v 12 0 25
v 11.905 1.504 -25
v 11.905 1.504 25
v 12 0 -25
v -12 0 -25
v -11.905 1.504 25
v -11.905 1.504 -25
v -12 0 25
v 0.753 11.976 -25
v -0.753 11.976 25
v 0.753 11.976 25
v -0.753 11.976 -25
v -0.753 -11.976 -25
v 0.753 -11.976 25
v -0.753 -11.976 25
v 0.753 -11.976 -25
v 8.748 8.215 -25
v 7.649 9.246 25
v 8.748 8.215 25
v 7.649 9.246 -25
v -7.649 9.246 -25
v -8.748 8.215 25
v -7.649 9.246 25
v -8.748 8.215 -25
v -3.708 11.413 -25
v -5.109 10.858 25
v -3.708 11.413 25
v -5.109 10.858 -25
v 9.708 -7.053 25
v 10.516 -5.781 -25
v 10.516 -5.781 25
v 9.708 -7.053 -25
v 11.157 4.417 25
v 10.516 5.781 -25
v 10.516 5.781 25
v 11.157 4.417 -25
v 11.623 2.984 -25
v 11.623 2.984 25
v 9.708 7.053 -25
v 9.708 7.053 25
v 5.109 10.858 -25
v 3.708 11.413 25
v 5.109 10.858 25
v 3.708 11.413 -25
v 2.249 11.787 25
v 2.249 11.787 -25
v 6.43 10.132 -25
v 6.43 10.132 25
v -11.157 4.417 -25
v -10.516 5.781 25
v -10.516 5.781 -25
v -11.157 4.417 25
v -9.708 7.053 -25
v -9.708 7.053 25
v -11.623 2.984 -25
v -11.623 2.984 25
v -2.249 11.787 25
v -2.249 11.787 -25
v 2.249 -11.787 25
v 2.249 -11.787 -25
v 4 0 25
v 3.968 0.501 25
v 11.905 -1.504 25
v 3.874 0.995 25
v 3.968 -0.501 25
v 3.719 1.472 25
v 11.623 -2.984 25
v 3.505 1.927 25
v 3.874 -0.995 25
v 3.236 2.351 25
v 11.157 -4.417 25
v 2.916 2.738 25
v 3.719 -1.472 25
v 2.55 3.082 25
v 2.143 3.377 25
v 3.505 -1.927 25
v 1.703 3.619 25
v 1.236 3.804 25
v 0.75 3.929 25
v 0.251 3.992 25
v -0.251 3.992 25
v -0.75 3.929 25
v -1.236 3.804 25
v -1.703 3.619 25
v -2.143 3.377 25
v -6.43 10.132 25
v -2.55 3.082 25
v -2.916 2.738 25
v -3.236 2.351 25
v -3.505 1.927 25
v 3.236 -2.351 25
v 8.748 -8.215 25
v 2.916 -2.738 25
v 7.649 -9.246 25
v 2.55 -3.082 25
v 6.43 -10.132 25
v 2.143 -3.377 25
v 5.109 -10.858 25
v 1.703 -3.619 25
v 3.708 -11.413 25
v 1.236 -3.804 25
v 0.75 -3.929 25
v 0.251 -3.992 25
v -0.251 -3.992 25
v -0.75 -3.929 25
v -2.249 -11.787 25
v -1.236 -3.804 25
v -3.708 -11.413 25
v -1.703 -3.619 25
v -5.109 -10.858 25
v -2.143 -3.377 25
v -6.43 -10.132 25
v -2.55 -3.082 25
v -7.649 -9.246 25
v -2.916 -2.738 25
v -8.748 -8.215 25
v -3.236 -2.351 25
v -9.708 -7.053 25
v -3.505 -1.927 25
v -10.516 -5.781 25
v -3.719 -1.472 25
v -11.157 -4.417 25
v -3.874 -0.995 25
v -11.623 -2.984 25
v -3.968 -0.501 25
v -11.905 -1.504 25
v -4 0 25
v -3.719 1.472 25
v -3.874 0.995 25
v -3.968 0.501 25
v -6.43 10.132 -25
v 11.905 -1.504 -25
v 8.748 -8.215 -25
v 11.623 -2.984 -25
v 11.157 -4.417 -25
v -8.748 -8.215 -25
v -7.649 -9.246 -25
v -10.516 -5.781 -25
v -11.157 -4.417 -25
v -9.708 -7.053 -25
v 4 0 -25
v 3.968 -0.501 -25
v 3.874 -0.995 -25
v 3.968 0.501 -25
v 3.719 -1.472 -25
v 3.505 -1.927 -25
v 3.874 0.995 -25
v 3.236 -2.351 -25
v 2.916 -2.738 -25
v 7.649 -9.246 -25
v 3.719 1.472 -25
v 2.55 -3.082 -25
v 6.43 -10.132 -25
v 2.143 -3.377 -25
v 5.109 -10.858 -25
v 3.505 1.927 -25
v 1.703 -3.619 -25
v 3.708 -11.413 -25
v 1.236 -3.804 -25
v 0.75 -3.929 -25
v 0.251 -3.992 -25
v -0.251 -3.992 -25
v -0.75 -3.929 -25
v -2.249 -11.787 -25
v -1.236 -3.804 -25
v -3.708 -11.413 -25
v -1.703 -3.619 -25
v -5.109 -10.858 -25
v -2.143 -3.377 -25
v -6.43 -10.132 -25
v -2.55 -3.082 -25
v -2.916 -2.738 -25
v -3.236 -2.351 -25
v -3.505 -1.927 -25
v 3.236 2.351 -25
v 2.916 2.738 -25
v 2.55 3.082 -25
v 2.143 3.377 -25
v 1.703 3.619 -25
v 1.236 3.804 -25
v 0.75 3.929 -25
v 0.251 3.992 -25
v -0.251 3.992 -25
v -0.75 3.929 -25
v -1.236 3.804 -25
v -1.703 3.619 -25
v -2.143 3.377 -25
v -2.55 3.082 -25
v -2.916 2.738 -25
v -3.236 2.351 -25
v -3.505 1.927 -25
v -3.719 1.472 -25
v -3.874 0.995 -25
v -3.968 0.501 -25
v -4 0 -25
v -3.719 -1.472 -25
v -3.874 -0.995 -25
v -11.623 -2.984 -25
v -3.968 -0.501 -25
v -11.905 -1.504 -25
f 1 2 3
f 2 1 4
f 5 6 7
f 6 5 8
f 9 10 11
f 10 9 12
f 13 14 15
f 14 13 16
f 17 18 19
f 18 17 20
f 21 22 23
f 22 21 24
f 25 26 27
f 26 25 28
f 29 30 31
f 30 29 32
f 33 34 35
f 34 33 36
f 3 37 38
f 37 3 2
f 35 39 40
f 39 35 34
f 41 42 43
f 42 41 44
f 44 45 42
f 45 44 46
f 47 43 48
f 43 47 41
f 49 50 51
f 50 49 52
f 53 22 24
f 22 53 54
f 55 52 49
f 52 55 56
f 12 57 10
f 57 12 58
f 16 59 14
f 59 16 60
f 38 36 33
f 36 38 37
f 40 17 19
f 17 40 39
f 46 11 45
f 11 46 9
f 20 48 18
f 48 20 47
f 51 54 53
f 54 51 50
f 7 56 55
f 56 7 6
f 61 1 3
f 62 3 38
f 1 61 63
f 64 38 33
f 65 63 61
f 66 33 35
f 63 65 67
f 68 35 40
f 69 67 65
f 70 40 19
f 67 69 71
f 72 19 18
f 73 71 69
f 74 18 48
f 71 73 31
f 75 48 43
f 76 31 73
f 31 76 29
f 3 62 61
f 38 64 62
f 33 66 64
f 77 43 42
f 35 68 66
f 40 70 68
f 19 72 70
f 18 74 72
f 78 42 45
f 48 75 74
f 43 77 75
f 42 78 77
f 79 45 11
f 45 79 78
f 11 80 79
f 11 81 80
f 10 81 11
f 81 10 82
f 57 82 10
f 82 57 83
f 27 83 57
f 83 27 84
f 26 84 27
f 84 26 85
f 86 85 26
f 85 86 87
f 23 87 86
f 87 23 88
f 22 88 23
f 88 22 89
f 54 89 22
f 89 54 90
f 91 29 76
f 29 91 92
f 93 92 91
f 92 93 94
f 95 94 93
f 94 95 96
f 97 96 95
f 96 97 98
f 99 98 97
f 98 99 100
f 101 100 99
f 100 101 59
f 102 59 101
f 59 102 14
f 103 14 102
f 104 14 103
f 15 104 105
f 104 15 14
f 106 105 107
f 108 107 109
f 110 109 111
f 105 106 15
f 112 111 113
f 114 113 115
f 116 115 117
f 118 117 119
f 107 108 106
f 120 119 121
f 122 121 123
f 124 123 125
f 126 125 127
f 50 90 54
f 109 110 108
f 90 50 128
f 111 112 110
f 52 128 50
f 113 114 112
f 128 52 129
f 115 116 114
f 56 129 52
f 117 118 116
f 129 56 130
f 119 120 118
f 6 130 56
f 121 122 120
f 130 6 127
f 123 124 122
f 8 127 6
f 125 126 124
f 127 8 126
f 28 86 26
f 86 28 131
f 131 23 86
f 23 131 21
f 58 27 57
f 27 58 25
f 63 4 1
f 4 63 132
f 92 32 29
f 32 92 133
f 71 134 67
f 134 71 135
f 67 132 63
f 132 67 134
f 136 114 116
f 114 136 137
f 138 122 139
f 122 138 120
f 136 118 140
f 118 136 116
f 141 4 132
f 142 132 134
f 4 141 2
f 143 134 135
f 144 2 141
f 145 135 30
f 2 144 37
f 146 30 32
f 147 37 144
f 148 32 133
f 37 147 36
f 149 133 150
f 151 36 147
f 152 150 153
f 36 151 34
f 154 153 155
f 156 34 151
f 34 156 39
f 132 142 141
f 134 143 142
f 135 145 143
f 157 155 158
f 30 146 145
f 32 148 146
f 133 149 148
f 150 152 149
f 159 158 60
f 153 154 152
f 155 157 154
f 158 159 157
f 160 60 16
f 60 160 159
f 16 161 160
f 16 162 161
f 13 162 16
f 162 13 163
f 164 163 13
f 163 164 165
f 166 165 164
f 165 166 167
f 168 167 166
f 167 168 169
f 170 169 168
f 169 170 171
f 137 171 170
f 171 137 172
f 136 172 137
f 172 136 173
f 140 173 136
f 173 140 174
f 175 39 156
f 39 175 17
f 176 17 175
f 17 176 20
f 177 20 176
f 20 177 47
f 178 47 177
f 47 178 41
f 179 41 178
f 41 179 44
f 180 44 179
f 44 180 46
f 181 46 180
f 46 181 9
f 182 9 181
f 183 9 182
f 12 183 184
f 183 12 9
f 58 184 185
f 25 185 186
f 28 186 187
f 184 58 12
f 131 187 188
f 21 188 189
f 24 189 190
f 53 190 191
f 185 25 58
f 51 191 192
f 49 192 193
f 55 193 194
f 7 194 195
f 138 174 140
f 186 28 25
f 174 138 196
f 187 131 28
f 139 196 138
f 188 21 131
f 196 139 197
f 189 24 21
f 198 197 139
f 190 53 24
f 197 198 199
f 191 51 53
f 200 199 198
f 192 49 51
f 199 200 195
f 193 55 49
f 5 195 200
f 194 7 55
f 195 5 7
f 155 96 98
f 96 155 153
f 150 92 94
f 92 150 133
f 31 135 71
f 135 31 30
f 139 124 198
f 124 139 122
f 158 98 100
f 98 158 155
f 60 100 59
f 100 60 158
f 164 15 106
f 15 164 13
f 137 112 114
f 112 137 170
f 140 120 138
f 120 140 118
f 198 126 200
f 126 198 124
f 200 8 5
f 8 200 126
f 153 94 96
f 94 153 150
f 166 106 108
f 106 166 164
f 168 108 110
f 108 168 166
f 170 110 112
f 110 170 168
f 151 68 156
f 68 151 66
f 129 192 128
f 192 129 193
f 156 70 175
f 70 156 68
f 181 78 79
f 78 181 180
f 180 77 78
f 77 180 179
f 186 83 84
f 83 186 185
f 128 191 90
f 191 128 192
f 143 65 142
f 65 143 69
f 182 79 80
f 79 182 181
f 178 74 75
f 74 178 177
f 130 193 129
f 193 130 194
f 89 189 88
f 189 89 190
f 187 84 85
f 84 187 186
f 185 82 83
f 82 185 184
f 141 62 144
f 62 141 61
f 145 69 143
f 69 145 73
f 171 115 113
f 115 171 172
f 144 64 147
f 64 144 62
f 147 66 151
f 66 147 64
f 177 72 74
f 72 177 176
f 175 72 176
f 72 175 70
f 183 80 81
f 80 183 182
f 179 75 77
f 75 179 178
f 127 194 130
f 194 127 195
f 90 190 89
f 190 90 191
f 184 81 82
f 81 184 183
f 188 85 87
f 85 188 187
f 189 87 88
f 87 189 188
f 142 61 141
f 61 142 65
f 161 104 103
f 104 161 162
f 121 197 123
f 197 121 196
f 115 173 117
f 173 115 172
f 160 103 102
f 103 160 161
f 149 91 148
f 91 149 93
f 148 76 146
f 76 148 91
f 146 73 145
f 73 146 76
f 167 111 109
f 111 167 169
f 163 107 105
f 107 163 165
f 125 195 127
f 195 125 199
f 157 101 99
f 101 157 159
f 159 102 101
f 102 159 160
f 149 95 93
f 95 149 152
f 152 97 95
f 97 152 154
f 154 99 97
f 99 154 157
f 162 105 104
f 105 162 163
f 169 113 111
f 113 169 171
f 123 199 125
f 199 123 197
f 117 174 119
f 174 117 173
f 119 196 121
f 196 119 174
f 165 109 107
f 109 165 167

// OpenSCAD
$fn = 50;


difference() {
	union() {
		translate(v = [0, 0, -25.0000000000]) {
			cylinder(h = 50, r = 12.0000000000);
		}
	}
	union() {
		translate(v = [0, 0, -100.0000000000]) {
			cylinder(h = 200, r = 4);
		}
	}
}
